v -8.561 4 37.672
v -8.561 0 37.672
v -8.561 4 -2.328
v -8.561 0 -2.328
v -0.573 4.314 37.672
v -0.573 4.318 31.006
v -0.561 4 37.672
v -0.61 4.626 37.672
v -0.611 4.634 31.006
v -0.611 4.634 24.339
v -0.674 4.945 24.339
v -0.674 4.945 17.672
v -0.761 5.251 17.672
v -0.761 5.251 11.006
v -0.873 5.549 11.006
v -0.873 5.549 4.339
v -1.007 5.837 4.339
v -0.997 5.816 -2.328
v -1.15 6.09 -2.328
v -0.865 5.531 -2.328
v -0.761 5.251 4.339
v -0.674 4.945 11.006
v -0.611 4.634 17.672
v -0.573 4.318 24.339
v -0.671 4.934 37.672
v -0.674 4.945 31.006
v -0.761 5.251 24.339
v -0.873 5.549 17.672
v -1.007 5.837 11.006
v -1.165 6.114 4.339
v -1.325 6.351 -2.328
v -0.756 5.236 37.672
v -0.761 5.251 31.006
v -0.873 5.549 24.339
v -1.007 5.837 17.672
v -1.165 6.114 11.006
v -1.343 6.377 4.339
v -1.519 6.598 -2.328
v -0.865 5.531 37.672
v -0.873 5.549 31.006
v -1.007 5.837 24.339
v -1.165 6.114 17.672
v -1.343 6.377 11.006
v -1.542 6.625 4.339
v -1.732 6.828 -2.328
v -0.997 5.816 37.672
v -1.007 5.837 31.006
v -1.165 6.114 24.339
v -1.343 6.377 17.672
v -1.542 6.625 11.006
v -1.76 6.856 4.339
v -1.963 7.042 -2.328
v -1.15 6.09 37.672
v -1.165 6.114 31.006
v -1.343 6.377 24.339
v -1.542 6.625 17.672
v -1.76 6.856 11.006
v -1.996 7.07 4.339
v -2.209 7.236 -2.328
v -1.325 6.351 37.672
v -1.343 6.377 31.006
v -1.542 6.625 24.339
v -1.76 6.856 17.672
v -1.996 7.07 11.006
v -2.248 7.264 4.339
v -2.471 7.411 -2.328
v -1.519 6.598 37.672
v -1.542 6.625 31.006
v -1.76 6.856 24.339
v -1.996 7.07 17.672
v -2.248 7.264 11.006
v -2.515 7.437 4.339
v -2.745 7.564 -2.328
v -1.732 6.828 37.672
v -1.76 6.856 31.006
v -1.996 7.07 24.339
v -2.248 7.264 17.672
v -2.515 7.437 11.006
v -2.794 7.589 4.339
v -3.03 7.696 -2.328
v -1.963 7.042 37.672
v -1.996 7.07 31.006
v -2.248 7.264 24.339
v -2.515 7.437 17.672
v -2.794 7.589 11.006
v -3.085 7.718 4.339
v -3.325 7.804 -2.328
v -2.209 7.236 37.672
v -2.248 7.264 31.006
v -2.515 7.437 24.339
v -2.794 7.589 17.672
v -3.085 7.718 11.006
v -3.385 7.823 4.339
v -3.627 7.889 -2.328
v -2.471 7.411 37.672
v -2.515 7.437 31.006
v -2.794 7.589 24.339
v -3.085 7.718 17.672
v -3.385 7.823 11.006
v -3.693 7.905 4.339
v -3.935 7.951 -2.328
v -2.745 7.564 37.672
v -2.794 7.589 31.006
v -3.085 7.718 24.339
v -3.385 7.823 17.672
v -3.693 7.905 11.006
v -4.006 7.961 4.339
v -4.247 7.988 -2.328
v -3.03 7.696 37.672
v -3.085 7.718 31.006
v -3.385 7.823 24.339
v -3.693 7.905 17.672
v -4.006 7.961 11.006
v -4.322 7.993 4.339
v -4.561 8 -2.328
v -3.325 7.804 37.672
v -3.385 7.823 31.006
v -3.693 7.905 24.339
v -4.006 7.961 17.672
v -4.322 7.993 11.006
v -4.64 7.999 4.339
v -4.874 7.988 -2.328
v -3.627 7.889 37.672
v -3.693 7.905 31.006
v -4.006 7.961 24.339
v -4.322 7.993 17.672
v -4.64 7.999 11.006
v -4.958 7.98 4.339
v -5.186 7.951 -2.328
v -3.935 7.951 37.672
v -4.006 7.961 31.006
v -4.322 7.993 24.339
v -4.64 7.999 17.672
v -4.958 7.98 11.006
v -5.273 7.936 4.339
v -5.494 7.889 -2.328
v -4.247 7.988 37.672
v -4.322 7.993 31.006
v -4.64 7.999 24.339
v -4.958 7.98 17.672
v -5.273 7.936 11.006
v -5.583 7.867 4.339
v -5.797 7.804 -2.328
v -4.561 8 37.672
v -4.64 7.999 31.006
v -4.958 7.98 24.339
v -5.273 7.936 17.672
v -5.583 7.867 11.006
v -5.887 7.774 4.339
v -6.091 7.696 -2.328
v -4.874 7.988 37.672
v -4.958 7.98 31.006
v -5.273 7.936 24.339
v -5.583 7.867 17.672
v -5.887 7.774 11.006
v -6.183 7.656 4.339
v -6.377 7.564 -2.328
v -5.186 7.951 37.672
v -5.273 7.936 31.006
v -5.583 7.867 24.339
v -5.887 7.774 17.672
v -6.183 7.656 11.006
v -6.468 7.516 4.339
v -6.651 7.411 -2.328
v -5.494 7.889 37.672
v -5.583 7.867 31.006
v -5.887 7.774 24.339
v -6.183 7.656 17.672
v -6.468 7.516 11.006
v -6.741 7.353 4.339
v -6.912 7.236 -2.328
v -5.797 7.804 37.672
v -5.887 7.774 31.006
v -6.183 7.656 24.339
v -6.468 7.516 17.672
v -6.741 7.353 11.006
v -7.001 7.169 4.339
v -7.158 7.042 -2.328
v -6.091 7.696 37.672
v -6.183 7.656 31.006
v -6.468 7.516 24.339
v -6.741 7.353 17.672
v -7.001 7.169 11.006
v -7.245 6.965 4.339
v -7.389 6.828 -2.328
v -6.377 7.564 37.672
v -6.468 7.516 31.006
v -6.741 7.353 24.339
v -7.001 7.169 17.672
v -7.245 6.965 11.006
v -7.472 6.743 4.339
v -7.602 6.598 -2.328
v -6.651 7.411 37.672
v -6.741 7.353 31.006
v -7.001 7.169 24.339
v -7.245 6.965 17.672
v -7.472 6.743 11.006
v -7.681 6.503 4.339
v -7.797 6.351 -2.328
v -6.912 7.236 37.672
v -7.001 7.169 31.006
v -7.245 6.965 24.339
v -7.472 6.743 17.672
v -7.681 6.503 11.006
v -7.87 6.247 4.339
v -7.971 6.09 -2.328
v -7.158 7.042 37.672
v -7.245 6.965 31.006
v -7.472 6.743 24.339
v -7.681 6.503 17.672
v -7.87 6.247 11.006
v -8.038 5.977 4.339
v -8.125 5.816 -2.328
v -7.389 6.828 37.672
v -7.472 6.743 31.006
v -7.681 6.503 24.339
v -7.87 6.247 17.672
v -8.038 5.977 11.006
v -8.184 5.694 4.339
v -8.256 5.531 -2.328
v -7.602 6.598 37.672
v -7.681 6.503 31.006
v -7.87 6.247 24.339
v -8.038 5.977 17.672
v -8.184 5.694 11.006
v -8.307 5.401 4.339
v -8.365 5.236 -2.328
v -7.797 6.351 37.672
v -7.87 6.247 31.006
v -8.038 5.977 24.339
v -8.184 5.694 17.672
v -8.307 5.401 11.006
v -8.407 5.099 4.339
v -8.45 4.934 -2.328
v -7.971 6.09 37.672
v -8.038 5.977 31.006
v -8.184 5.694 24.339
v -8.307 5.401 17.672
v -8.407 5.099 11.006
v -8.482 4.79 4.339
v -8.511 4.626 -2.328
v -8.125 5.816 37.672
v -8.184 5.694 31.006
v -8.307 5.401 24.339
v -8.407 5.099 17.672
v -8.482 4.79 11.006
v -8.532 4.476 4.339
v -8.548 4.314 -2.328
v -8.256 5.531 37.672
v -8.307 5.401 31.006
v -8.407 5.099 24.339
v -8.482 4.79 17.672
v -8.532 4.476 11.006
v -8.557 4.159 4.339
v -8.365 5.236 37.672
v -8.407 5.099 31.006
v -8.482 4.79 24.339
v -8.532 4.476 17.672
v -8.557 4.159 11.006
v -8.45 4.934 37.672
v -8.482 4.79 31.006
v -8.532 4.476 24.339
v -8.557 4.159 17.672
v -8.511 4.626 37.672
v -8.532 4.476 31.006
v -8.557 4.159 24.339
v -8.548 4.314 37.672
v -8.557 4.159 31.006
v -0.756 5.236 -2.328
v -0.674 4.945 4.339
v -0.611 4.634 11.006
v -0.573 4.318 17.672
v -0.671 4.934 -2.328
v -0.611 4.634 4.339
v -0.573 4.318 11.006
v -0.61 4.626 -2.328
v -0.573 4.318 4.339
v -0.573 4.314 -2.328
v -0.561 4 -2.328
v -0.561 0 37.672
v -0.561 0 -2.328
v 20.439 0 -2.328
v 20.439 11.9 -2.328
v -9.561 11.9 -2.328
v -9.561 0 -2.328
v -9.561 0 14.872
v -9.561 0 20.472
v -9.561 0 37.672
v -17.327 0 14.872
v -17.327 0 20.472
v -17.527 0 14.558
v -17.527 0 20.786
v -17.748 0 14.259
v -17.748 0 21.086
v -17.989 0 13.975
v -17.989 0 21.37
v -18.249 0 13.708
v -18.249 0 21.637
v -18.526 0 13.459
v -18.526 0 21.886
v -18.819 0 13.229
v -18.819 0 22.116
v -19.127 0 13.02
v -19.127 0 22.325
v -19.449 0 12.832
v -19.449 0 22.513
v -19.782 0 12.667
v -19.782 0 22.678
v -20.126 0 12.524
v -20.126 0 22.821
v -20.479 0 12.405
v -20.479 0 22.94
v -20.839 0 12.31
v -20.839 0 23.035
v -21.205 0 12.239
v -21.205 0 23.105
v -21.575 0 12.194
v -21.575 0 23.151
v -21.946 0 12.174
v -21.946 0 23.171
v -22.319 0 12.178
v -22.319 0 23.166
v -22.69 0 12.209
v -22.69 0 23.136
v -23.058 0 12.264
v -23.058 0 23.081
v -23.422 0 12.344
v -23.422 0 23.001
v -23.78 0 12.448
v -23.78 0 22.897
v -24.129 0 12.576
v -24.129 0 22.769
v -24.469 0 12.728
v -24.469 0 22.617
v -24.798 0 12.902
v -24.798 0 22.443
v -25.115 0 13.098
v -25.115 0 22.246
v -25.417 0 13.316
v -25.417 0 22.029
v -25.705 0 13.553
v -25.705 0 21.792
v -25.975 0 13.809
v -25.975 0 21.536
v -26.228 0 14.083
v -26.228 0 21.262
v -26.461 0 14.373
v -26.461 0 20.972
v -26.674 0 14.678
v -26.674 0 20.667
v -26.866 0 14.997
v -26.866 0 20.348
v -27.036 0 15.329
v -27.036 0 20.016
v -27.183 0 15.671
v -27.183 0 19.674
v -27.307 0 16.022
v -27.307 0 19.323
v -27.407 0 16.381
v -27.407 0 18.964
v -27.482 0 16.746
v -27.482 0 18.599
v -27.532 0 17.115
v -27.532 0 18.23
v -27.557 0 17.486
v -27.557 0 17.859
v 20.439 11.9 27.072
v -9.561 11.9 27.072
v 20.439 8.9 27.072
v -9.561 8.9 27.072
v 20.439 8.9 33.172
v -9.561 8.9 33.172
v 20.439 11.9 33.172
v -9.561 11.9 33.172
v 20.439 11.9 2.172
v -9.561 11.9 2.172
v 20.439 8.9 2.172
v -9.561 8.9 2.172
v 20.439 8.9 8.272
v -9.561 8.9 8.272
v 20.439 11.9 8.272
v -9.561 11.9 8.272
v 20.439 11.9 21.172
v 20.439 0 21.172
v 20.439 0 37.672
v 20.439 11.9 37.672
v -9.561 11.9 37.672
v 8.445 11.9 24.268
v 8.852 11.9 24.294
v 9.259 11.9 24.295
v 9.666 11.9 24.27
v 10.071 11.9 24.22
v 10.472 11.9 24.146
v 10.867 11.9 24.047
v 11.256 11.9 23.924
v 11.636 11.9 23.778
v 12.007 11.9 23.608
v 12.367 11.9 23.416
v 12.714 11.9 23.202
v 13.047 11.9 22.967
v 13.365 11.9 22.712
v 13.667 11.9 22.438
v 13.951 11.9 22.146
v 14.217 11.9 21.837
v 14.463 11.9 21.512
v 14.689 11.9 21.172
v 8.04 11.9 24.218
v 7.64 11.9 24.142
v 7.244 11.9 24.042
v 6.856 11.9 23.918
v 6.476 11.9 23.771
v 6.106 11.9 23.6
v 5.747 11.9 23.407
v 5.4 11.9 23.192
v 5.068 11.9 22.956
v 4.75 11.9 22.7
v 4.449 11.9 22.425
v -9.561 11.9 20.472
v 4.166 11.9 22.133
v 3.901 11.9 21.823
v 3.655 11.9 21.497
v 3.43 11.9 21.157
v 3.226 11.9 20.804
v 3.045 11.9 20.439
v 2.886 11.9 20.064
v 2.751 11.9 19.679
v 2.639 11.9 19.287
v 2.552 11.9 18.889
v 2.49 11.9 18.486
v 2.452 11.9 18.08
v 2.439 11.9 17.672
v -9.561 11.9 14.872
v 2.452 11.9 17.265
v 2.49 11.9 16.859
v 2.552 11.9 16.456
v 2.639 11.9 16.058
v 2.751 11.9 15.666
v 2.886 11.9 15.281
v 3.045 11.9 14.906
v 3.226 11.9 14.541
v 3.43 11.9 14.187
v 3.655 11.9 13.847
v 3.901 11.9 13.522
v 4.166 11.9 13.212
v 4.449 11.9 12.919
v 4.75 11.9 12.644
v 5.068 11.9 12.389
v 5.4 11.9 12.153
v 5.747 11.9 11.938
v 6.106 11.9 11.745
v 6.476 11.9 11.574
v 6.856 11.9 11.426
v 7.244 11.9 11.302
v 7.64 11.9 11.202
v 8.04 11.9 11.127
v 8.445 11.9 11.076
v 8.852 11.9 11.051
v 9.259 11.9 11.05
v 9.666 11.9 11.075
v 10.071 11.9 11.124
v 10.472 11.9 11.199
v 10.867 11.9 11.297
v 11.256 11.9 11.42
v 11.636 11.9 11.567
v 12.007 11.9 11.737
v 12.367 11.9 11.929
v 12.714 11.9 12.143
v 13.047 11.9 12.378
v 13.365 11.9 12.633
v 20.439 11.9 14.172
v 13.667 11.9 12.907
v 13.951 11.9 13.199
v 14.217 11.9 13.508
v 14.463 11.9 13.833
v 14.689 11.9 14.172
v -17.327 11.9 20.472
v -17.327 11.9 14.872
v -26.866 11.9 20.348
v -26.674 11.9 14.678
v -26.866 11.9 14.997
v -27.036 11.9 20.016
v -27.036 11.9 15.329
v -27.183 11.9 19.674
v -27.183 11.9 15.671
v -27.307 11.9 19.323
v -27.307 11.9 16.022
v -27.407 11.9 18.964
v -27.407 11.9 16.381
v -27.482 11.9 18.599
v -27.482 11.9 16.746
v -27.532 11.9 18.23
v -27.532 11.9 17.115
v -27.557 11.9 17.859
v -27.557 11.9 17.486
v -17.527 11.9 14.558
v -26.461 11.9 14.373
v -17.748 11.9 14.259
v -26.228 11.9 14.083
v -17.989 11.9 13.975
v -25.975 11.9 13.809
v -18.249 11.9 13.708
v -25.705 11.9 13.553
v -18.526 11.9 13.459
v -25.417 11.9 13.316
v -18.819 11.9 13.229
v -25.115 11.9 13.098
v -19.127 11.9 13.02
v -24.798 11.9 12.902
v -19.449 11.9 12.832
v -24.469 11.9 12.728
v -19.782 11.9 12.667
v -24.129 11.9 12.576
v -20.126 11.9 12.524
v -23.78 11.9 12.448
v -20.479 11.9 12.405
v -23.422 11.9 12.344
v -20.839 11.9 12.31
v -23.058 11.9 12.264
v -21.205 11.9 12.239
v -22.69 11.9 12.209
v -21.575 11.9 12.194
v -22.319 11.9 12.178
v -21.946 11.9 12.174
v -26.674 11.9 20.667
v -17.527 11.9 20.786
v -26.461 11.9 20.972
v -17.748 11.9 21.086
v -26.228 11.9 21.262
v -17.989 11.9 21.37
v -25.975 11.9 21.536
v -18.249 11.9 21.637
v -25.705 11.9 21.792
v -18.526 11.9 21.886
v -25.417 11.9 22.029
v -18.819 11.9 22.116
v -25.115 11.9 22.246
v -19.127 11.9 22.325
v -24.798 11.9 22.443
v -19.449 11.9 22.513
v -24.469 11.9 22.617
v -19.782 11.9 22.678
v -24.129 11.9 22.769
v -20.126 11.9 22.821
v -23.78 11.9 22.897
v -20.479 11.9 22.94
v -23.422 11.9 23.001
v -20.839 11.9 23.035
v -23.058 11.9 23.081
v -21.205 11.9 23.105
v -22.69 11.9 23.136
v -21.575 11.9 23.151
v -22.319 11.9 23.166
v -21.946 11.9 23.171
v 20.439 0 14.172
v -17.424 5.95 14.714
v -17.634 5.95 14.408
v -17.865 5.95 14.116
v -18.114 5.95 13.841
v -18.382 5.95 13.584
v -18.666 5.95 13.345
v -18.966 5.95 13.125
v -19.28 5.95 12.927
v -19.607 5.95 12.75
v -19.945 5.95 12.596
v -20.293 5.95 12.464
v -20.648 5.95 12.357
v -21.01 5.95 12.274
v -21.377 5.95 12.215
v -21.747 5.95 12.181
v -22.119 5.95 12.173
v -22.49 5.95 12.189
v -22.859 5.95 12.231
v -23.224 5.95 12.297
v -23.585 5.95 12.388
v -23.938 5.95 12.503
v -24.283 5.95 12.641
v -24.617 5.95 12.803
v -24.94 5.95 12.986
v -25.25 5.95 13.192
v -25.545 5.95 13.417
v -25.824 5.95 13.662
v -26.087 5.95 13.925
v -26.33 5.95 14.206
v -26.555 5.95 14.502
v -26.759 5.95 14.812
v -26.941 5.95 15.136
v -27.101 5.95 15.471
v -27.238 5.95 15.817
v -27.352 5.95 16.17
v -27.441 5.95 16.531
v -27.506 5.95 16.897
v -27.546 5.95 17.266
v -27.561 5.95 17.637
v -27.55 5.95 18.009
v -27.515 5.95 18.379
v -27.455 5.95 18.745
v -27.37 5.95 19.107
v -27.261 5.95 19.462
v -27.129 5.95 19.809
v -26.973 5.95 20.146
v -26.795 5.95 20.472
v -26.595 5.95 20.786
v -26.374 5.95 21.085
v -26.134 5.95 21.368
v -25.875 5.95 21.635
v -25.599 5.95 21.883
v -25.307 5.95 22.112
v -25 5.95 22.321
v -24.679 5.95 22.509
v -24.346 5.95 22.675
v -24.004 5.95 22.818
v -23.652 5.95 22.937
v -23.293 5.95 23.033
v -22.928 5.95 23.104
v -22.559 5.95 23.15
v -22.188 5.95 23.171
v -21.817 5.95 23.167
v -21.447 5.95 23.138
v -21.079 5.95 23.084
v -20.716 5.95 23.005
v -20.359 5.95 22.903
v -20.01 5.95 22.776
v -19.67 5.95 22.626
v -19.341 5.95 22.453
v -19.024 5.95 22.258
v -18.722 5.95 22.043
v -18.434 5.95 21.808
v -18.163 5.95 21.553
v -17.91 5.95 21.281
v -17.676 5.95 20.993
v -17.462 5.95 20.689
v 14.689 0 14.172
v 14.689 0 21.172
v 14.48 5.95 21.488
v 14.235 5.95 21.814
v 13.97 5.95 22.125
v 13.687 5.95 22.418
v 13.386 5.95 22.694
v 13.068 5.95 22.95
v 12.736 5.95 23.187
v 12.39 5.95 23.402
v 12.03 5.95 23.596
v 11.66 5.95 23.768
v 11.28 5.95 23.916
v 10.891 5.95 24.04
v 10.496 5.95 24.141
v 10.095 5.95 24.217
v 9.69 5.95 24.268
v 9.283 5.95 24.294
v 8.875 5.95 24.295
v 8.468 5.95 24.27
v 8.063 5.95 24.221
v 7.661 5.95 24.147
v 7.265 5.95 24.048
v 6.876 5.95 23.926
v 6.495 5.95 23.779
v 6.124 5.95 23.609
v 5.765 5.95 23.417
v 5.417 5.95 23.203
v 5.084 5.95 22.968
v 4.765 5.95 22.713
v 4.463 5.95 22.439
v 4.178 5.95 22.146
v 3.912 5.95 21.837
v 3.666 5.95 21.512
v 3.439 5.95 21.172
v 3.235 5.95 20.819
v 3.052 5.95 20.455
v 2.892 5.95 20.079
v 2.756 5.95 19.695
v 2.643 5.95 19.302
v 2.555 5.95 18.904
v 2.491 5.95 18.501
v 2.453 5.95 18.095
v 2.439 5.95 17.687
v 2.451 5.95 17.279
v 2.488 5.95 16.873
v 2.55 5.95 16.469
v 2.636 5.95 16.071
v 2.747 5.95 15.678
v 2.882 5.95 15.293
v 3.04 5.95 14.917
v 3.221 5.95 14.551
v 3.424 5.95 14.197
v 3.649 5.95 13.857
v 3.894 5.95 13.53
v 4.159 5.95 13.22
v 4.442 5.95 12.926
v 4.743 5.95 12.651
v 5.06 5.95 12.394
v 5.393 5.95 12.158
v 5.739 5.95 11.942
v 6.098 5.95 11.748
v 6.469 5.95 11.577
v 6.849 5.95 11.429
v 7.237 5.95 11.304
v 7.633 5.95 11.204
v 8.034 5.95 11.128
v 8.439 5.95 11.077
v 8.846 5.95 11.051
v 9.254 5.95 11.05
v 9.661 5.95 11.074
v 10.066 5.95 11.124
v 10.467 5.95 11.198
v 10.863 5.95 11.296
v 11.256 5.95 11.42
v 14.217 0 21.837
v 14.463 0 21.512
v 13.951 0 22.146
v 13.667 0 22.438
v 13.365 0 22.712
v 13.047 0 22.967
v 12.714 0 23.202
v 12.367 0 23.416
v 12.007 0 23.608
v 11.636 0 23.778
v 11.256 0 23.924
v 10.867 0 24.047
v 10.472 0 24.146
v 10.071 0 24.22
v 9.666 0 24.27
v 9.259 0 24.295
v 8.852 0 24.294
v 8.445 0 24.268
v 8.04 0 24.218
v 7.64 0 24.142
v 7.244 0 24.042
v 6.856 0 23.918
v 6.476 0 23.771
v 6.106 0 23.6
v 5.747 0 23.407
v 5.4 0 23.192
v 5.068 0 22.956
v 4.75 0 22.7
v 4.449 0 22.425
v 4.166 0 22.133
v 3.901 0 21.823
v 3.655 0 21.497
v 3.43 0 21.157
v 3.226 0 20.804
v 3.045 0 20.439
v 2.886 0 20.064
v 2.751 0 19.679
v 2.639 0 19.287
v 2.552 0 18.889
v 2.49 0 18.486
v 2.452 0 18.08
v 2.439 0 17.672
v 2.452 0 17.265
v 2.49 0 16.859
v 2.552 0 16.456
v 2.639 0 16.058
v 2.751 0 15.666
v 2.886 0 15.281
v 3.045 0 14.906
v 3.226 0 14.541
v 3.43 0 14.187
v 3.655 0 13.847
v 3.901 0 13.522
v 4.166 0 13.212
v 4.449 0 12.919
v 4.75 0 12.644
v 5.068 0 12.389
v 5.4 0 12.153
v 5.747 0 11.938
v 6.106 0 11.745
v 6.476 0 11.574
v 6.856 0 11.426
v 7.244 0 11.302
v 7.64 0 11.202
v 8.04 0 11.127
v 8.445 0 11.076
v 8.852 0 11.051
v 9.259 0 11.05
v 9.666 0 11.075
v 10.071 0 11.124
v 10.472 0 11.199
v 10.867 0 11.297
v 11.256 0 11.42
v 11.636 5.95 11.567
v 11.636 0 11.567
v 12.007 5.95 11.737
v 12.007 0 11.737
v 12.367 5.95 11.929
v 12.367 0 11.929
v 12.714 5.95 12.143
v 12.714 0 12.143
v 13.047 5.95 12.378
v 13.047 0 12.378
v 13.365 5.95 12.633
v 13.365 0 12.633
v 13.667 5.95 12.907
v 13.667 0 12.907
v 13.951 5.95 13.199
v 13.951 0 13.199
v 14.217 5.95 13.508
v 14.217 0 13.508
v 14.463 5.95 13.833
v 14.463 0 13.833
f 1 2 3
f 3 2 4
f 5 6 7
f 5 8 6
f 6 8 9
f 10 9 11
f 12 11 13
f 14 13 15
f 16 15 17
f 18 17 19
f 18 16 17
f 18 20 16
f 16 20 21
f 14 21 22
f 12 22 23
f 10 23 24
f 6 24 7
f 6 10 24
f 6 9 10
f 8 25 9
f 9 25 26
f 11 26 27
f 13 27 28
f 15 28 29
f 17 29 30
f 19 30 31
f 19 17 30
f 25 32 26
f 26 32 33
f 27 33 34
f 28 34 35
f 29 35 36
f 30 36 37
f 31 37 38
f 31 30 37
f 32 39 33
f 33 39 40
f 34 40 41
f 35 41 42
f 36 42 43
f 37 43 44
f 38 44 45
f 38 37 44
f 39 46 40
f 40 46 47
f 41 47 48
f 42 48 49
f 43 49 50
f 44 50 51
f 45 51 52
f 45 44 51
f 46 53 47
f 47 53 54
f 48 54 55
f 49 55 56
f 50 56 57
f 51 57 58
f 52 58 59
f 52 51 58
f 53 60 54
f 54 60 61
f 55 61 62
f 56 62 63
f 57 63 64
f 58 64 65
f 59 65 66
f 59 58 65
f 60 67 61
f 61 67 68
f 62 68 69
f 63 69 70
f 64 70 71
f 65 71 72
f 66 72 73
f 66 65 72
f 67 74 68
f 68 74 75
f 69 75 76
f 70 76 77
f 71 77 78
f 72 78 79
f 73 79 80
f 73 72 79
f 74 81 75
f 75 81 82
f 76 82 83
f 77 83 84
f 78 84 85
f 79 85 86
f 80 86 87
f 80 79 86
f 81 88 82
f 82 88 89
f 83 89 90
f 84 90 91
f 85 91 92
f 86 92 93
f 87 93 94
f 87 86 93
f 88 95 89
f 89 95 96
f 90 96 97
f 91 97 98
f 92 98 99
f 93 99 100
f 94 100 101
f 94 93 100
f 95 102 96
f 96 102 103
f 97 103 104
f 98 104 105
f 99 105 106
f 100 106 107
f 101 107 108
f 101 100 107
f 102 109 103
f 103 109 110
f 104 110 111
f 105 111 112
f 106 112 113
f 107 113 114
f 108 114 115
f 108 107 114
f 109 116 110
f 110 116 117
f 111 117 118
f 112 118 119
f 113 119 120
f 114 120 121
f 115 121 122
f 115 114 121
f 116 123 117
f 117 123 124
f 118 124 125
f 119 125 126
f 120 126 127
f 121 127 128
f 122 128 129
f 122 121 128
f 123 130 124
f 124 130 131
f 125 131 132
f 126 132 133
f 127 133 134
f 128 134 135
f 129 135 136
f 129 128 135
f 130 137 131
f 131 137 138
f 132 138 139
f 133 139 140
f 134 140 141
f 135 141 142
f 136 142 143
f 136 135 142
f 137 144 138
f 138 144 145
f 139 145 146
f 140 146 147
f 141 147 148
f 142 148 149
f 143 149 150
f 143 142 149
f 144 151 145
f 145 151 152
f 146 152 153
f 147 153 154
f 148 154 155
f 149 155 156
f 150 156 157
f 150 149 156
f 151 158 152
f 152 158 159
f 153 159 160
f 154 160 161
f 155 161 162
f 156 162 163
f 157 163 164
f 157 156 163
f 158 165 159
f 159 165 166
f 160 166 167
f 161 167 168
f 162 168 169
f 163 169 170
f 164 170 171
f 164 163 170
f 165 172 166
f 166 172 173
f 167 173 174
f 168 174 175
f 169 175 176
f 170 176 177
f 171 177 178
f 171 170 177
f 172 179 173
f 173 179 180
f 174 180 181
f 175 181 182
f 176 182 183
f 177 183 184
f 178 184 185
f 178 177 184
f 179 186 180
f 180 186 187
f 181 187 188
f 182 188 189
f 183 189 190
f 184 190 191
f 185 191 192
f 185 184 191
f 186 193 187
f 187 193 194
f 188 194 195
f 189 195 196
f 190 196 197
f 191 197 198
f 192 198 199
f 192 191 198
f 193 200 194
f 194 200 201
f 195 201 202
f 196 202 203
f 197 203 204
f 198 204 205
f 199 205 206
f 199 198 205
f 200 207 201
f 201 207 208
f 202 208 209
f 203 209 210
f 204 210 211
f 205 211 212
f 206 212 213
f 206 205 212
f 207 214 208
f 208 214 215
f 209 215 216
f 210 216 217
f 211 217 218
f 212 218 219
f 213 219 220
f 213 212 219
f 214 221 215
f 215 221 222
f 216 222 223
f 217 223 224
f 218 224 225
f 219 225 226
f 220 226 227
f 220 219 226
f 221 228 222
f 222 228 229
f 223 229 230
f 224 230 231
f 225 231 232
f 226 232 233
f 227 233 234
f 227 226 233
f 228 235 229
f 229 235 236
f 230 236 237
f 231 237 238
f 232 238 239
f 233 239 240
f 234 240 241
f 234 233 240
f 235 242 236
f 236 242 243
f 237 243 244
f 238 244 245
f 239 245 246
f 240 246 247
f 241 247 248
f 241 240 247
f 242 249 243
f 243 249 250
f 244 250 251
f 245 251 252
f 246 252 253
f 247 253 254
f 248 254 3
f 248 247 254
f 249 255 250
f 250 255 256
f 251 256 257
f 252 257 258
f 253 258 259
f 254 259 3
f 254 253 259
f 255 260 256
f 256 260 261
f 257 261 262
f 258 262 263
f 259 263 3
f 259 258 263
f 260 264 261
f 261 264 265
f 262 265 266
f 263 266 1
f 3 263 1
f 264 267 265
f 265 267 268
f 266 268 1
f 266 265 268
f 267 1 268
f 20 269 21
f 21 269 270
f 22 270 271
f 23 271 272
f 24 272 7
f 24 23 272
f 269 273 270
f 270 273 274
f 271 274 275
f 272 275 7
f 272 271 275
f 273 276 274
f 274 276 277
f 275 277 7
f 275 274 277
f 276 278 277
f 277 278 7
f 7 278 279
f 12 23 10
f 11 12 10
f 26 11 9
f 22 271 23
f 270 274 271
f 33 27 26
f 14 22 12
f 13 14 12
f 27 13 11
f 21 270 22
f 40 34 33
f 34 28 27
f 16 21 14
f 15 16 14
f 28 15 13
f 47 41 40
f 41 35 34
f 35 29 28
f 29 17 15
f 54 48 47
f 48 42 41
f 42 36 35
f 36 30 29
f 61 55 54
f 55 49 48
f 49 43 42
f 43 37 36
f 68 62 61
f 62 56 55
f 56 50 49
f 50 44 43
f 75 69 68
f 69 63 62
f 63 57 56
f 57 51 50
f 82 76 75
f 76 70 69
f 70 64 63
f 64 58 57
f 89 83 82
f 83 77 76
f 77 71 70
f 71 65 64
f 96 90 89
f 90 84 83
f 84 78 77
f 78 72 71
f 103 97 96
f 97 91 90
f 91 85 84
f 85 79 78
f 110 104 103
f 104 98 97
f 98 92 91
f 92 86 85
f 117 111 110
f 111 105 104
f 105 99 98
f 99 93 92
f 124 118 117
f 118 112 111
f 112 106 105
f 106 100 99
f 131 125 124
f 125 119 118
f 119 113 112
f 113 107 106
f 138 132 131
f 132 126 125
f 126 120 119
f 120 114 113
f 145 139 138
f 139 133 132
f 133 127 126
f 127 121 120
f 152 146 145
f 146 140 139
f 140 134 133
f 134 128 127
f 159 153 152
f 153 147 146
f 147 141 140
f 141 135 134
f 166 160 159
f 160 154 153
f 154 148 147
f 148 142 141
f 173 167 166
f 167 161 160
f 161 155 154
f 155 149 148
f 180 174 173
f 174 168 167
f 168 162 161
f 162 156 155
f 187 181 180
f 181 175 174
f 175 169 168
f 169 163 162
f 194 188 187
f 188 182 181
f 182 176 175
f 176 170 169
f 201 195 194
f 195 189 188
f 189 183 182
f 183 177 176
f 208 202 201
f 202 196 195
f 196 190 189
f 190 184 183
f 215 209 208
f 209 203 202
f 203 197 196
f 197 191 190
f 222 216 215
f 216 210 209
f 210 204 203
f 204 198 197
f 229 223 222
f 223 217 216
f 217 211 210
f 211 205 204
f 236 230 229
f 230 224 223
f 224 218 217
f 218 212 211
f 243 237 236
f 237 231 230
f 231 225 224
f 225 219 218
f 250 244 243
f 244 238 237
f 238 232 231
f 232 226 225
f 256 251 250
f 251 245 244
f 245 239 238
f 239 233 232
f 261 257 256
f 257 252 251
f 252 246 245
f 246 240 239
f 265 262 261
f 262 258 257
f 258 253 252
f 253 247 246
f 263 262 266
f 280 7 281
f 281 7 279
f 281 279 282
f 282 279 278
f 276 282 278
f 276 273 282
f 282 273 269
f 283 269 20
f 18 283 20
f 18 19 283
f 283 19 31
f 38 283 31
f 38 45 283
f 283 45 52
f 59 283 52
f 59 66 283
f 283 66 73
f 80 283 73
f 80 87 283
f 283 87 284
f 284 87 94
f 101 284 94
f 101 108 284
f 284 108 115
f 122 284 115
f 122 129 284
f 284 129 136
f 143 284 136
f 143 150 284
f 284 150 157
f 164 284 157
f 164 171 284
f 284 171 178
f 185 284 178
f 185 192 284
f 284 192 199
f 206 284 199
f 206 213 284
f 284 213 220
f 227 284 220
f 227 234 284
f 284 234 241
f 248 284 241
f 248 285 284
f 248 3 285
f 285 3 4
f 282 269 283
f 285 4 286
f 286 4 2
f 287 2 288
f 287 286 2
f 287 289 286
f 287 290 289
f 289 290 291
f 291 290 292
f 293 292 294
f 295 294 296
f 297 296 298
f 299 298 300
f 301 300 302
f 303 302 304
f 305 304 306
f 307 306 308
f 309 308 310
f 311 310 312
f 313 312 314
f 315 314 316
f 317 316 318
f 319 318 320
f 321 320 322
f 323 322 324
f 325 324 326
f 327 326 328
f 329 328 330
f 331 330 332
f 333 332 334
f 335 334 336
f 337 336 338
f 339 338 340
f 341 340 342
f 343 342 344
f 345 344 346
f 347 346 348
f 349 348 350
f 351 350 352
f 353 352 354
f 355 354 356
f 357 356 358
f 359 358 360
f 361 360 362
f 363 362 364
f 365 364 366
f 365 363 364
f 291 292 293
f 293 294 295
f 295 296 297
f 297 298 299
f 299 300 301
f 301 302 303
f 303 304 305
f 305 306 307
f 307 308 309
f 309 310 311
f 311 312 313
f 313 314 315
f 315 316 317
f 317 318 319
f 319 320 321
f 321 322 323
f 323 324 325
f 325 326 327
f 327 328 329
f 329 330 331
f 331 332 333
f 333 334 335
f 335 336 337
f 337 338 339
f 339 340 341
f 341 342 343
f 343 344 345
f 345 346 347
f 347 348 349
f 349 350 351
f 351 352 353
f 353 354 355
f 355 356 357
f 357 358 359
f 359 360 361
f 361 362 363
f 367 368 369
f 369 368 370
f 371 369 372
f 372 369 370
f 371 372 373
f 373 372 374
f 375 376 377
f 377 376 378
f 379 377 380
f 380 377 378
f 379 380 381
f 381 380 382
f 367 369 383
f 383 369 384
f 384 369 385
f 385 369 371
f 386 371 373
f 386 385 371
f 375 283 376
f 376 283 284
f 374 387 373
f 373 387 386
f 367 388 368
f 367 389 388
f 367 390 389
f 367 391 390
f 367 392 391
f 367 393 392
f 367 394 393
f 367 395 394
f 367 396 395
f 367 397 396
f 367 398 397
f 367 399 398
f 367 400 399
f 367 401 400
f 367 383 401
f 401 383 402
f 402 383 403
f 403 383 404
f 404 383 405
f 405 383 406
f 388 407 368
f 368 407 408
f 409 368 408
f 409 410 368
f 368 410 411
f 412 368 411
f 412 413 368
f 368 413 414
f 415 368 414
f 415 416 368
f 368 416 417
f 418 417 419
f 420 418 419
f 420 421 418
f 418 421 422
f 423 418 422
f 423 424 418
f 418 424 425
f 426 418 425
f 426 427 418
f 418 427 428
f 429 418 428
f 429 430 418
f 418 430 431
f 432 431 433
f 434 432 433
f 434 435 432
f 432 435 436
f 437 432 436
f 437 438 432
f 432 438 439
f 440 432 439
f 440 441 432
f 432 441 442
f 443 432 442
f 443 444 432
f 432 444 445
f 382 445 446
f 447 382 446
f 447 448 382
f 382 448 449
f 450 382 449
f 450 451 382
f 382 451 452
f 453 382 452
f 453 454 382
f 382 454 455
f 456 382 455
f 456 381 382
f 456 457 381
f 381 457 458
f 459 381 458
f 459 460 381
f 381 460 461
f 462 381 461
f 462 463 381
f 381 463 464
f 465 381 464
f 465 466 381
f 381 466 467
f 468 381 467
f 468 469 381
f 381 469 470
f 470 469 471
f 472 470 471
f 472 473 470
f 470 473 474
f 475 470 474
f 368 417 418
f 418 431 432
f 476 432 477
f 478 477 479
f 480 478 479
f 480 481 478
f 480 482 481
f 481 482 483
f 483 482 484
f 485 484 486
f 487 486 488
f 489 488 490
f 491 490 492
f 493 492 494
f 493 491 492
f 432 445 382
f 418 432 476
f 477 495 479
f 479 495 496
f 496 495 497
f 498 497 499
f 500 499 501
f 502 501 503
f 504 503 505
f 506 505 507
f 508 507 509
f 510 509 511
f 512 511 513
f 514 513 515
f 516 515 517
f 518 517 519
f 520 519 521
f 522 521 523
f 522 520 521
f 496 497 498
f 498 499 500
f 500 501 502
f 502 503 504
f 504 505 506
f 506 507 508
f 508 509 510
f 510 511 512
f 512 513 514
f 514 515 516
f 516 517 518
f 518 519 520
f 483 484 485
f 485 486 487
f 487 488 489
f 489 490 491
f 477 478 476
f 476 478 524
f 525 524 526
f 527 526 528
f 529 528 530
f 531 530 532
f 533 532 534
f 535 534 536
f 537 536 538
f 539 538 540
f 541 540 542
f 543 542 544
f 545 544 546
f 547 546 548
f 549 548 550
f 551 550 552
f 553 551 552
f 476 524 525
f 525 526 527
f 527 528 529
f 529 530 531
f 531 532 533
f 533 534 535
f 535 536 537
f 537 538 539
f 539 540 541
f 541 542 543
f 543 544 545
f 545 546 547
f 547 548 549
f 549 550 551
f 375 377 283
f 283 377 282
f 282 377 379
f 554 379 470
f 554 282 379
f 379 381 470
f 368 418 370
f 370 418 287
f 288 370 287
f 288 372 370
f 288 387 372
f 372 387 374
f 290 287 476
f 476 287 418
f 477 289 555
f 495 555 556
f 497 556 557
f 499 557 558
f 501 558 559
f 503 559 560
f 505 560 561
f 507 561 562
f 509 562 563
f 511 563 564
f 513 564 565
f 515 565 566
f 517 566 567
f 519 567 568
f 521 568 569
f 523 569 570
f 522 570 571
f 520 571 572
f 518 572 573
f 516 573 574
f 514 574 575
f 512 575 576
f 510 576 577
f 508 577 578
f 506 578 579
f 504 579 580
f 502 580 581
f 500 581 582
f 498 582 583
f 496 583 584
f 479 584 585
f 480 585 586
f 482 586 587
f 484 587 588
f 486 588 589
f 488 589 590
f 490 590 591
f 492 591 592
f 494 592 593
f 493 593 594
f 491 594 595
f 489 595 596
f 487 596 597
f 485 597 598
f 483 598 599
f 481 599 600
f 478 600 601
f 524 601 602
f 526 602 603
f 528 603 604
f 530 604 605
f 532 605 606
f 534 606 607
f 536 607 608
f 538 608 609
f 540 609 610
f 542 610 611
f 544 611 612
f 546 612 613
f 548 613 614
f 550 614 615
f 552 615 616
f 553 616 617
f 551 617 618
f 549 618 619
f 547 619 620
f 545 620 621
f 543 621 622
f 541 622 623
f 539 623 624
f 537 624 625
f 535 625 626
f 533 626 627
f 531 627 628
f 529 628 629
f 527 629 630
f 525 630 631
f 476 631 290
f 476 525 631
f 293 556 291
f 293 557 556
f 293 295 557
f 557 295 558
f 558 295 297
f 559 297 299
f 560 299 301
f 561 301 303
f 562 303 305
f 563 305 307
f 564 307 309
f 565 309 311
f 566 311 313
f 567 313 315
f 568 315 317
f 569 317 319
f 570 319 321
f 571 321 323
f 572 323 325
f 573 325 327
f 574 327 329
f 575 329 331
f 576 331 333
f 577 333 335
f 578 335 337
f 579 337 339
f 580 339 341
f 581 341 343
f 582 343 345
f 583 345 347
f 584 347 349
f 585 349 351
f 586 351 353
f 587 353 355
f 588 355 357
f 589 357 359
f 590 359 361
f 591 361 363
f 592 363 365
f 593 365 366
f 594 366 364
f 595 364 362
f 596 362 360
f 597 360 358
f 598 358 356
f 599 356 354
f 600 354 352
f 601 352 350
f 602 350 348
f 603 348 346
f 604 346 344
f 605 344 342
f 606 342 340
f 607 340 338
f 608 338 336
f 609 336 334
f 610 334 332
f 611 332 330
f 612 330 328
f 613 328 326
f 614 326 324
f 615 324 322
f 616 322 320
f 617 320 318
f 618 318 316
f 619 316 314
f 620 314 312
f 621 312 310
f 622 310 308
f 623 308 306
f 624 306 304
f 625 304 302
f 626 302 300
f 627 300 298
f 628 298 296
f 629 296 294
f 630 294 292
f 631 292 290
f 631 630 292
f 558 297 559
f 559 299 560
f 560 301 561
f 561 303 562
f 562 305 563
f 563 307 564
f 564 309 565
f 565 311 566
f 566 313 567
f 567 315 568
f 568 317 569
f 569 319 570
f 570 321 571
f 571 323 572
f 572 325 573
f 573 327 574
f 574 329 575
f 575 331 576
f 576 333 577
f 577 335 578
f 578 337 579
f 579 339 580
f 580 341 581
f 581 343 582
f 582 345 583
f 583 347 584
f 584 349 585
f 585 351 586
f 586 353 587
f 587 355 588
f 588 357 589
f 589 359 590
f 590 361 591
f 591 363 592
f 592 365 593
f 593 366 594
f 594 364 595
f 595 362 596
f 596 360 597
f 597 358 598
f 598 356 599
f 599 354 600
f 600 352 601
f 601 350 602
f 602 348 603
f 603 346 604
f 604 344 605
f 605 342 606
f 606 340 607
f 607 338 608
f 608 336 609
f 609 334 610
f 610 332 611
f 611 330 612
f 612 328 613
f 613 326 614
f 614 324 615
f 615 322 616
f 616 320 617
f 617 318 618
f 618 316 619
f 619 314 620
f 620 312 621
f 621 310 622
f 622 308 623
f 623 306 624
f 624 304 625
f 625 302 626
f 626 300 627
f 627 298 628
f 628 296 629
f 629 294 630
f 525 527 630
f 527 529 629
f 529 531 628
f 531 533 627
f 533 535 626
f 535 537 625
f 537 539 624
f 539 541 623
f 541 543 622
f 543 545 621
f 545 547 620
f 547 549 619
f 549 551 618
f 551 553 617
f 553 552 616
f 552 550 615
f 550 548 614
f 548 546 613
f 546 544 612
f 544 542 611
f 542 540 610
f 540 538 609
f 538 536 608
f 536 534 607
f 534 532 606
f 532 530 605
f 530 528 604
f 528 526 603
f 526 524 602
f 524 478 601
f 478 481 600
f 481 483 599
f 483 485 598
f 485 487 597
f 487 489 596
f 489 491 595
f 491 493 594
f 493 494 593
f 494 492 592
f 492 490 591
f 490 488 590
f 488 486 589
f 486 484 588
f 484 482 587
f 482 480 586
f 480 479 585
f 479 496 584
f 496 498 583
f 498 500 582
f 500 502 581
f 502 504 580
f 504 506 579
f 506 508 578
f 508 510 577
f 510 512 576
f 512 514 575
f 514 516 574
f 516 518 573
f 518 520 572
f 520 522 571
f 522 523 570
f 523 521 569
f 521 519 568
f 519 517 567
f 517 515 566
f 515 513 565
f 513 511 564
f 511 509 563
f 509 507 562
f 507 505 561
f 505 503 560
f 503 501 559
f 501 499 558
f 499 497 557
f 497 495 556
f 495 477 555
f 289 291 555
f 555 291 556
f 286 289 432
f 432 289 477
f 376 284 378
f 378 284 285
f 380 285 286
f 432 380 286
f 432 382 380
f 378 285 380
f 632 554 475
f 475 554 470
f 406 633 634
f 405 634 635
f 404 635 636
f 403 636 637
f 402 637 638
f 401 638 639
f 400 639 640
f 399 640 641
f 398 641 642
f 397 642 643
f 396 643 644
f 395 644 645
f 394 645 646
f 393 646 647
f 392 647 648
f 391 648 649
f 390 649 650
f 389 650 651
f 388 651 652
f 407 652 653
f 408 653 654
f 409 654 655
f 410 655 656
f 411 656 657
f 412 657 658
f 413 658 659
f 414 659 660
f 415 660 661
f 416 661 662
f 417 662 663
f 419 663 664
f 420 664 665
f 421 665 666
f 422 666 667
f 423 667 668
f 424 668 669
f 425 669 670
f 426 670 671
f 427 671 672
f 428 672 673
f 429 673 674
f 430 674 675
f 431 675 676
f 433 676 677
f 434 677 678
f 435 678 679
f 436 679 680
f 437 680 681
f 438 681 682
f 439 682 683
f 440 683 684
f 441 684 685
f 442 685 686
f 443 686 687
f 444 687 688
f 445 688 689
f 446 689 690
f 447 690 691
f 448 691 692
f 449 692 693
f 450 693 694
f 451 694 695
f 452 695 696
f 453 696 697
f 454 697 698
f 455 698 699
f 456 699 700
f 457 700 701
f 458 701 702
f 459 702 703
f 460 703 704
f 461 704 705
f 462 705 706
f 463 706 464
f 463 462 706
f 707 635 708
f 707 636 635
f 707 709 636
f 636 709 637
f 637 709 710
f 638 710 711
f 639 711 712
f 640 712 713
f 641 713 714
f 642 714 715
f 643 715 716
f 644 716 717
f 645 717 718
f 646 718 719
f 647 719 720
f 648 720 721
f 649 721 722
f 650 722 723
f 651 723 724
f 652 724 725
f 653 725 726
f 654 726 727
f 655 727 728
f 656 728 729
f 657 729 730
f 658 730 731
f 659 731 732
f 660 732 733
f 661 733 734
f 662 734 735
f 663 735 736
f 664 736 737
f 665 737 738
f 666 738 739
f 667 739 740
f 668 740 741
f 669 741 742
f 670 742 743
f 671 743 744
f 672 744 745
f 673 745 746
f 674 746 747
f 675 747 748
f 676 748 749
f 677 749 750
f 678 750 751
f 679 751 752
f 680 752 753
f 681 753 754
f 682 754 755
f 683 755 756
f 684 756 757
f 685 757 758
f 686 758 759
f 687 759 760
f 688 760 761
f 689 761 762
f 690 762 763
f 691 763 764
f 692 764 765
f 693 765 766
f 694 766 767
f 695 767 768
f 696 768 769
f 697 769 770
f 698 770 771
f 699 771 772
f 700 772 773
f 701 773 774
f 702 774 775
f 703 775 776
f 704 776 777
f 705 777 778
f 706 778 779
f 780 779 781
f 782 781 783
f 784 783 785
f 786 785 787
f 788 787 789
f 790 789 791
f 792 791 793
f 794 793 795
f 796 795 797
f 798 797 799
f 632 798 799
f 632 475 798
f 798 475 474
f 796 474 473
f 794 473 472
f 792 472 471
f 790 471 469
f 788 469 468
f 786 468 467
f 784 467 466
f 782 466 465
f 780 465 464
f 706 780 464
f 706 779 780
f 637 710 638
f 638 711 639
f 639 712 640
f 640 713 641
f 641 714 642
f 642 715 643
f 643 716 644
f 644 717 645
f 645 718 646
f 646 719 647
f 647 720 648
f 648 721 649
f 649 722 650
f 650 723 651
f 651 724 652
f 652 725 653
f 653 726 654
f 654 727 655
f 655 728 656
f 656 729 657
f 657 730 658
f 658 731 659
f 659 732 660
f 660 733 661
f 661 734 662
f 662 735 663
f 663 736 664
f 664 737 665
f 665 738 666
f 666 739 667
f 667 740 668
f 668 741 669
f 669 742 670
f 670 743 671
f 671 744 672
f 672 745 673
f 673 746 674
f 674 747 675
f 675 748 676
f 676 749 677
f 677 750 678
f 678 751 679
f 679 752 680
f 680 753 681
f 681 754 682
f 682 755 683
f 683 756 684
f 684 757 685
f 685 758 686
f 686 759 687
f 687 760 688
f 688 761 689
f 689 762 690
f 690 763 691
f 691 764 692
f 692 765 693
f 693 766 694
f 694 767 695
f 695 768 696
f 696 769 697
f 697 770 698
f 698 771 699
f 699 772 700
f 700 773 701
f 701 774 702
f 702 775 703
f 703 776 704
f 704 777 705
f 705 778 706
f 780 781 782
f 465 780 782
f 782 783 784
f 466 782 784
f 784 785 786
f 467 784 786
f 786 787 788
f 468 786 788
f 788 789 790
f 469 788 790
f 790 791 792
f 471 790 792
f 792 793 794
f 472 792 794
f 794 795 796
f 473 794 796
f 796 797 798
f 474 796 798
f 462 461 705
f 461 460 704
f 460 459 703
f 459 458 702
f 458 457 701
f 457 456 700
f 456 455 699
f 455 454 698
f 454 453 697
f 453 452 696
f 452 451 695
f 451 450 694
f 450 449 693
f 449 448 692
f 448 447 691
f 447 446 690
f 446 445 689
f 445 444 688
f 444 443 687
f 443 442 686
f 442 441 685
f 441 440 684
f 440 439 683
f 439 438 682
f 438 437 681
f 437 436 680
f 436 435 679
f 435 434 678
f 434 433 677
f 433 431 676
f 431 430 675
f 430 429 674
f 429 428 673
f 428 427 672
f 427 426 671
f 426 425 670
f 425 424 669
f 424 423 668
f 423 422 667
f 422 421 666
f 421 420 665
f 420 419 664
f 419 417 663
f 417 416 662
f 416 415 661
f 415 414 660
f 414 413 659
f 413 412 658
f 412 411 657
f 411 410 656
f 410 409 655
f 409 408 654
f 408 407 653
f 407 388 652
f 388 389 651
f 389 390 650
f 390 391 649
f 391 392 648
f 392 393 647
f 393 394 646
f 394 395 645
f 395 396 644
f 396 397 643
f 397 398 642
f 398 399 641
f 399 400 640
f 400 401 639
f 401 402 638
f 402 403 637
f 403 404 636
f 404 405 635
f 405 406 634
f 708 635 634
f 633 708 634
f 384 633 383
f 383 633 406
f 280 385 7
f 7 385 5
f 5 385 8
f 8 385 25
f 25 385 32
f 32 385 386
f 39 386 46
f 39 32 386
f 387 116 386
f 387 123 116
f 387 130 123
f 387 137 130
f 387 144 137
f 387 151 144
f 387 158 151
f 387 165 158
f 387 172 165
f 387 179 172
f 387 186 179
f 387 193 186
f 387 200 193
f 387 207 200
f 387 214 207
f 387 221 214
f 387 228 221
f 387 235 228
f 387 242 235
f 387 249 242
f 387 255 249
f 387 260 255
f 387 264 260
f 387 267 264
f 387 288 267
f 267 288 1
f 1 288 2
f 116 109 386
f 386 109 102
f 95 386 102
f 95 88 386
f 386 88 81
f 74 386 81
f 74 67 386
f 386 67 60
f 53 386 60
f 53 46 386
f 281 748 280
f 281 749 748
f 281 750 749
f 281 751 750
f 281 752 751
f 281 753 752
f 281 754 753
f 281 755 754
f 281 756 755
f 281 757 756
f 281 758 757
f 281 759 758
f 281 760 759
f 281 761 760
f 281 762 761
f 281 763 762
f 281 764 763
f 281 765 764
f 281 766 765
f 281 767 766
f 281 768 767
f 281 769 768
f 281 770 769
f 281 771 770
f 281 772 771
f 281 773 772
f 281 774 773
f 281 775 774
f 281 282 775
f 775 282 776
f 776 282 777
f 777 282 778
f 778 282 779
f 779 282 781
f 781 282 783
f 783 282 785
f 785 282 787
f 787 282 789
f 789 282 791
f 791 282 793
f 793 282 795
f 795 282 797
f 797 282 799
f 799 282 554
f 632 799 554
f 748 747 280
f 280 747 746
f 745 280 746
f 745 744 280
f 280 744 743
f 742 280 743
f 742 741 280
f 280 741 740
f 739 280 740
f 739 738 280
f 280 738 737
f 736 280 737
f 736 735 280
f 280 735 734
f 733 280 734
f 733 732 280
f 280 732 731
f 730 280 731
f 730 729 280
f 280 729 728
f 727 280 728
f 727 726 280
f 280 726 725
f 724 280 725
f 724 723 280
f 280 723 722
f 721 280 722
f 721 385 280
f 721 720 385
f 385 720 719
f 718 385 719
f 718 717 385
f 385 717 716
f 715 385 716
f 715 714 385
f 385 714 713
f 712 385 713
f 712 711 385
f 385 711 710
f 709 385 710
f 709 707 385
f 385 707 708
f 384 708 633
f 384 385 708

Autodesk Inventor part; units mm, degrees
ref_plane "YZ Plane" through (0, 0, 0) normal (1, 0, 0) x (0, 1, 0)
ref_plane "XZ Plane" through (0, 0, 0) normal (0, 1, 0) x (-1, 0, 0)
ref_plane "XY Plane" through (0, 0, 0) normal (0, 0, 1) x (1, 0, 0)
sketch "Sketch1" plane through (0, 0, 0) normal (0, 1, 0) x (-1, 0, 0)
  line L0 (9.5606, 37.6724) -> (-20.4394, 37.6724)
  line L1 (-20.4394, -2.3276) -> (9.5606, -2.3276)
  line L2 (17.3267, 20.4724) -> (9.5606, 20.4724)
  line L3 (9.5606, 14.8724) -> (17.3267, 14.8724)
  arc A0 (17.3267, 14.8724) -> (17.3267, 20.4724) centre (22.0606, 17.6724) ccw
  line L4 (9.5606, -2.3276) -> (9.5606, 14.8724)
  line L5 (9.5606, 20.4724) -> (9.5606, 37.6724)
  arc A1 (-14.6894, 14.1724) -> (-14.6894, 21.1724) centre (-9.0644, 17.6724) ccw
  line L6 (-14.6894, 21.1724) -> (-20.4394, 21.1724)
  line L7 (-14.6894, 14.1724) -> (-20.4394, 14.1724)
  line L8 (-20.4394, 37.6724) -> (-20.4394, 21.1724)
  line L9 (-20.4394, 14.1724) -> (-20.4394, -2.3276)
  point P0 (0, 0)
  dimension "d0" = 30
  dimension "d1" = 40
  dimension "d2" = 17.2
  dimension "d5" = 17.2
  dimension "d10" = 12.5
  dimension "d12" = 7.7661
  dimension "d17" = 13.25
  dimension "d18" = 20
  dimension "d19" = 16.5
  dimension "d20" = 16.5
extrude "Extrusion1" add sketch "Sketch1" along normal blind 11.9
sketch "Sketch2" plane through (0, 11.9, 0) normal (0, 1, 0) x (1, 0, 0)
  line L0 (-9.5606, -20.4724) -> (-9.5606, -37.6724) projected
  line L1 (-9.5606, -33.1724) -> (20.4769, -33.1724)
  line L2 (20.4769, -33.1724) -> (20.4769, -27.0724)
  line L3 (20.4769, -27.0724) -> (-9.5606, -27.0724)
  line L4 (-9.5606, -27.0724) -> (-9.5606, -33.1724)
  line L5 (-9.5606, -37.6724) -> (20.4394, -37.6724) projected
  line L6 (-9.5606, -8.2724) -> (20.4769, -8.2724)
  line L7 (20.4769, -8.2724) -> (20.4769, -2.1724)
  line L8 (20.4769, -2.1724) -> (-9.5606, -2.1724)
  line L9 (-9.5606, -2.1724) -> (-9.5606, -8.2724)
  line L10 (20.4394, 2.3276) -> (-9.5606, 2.3276) projected
  line L11 (-9.5606, 2.3276) -> (-9.5606, -14.8724) projected
  point P0 (0, 0)
  dimension "d24" = 6.1
  dimension "d25" = 4.5
  dimension "d26" = 6.1
  dimension "d27" = 4.5
  dimension "d35" = 0
extrude "Extrusion2" cut sketch "Sketch2" against normal blind 3
sketch "Sketch3" plane through (20.4394, 0, -2.3276) normal (0, 0, -1) x (-1, 0, 0)
  line L0 (21, 0) -> (29, 0)
  line L1 (29, 0) -> (29, 4)
  line L2 (21, 4) -> (21, 0)
  arc A0 (29, 4) -> (21, 4) centre (25, 4) ccw
  line L3 (30, 0) -> (30, 11.9) projected
  point P0 (20.4394, 0)
  dimension "d34" = 9
extrude "Extrusion3" cut sketch "Sketch3" against normal through all
properties part number "traintrack"
